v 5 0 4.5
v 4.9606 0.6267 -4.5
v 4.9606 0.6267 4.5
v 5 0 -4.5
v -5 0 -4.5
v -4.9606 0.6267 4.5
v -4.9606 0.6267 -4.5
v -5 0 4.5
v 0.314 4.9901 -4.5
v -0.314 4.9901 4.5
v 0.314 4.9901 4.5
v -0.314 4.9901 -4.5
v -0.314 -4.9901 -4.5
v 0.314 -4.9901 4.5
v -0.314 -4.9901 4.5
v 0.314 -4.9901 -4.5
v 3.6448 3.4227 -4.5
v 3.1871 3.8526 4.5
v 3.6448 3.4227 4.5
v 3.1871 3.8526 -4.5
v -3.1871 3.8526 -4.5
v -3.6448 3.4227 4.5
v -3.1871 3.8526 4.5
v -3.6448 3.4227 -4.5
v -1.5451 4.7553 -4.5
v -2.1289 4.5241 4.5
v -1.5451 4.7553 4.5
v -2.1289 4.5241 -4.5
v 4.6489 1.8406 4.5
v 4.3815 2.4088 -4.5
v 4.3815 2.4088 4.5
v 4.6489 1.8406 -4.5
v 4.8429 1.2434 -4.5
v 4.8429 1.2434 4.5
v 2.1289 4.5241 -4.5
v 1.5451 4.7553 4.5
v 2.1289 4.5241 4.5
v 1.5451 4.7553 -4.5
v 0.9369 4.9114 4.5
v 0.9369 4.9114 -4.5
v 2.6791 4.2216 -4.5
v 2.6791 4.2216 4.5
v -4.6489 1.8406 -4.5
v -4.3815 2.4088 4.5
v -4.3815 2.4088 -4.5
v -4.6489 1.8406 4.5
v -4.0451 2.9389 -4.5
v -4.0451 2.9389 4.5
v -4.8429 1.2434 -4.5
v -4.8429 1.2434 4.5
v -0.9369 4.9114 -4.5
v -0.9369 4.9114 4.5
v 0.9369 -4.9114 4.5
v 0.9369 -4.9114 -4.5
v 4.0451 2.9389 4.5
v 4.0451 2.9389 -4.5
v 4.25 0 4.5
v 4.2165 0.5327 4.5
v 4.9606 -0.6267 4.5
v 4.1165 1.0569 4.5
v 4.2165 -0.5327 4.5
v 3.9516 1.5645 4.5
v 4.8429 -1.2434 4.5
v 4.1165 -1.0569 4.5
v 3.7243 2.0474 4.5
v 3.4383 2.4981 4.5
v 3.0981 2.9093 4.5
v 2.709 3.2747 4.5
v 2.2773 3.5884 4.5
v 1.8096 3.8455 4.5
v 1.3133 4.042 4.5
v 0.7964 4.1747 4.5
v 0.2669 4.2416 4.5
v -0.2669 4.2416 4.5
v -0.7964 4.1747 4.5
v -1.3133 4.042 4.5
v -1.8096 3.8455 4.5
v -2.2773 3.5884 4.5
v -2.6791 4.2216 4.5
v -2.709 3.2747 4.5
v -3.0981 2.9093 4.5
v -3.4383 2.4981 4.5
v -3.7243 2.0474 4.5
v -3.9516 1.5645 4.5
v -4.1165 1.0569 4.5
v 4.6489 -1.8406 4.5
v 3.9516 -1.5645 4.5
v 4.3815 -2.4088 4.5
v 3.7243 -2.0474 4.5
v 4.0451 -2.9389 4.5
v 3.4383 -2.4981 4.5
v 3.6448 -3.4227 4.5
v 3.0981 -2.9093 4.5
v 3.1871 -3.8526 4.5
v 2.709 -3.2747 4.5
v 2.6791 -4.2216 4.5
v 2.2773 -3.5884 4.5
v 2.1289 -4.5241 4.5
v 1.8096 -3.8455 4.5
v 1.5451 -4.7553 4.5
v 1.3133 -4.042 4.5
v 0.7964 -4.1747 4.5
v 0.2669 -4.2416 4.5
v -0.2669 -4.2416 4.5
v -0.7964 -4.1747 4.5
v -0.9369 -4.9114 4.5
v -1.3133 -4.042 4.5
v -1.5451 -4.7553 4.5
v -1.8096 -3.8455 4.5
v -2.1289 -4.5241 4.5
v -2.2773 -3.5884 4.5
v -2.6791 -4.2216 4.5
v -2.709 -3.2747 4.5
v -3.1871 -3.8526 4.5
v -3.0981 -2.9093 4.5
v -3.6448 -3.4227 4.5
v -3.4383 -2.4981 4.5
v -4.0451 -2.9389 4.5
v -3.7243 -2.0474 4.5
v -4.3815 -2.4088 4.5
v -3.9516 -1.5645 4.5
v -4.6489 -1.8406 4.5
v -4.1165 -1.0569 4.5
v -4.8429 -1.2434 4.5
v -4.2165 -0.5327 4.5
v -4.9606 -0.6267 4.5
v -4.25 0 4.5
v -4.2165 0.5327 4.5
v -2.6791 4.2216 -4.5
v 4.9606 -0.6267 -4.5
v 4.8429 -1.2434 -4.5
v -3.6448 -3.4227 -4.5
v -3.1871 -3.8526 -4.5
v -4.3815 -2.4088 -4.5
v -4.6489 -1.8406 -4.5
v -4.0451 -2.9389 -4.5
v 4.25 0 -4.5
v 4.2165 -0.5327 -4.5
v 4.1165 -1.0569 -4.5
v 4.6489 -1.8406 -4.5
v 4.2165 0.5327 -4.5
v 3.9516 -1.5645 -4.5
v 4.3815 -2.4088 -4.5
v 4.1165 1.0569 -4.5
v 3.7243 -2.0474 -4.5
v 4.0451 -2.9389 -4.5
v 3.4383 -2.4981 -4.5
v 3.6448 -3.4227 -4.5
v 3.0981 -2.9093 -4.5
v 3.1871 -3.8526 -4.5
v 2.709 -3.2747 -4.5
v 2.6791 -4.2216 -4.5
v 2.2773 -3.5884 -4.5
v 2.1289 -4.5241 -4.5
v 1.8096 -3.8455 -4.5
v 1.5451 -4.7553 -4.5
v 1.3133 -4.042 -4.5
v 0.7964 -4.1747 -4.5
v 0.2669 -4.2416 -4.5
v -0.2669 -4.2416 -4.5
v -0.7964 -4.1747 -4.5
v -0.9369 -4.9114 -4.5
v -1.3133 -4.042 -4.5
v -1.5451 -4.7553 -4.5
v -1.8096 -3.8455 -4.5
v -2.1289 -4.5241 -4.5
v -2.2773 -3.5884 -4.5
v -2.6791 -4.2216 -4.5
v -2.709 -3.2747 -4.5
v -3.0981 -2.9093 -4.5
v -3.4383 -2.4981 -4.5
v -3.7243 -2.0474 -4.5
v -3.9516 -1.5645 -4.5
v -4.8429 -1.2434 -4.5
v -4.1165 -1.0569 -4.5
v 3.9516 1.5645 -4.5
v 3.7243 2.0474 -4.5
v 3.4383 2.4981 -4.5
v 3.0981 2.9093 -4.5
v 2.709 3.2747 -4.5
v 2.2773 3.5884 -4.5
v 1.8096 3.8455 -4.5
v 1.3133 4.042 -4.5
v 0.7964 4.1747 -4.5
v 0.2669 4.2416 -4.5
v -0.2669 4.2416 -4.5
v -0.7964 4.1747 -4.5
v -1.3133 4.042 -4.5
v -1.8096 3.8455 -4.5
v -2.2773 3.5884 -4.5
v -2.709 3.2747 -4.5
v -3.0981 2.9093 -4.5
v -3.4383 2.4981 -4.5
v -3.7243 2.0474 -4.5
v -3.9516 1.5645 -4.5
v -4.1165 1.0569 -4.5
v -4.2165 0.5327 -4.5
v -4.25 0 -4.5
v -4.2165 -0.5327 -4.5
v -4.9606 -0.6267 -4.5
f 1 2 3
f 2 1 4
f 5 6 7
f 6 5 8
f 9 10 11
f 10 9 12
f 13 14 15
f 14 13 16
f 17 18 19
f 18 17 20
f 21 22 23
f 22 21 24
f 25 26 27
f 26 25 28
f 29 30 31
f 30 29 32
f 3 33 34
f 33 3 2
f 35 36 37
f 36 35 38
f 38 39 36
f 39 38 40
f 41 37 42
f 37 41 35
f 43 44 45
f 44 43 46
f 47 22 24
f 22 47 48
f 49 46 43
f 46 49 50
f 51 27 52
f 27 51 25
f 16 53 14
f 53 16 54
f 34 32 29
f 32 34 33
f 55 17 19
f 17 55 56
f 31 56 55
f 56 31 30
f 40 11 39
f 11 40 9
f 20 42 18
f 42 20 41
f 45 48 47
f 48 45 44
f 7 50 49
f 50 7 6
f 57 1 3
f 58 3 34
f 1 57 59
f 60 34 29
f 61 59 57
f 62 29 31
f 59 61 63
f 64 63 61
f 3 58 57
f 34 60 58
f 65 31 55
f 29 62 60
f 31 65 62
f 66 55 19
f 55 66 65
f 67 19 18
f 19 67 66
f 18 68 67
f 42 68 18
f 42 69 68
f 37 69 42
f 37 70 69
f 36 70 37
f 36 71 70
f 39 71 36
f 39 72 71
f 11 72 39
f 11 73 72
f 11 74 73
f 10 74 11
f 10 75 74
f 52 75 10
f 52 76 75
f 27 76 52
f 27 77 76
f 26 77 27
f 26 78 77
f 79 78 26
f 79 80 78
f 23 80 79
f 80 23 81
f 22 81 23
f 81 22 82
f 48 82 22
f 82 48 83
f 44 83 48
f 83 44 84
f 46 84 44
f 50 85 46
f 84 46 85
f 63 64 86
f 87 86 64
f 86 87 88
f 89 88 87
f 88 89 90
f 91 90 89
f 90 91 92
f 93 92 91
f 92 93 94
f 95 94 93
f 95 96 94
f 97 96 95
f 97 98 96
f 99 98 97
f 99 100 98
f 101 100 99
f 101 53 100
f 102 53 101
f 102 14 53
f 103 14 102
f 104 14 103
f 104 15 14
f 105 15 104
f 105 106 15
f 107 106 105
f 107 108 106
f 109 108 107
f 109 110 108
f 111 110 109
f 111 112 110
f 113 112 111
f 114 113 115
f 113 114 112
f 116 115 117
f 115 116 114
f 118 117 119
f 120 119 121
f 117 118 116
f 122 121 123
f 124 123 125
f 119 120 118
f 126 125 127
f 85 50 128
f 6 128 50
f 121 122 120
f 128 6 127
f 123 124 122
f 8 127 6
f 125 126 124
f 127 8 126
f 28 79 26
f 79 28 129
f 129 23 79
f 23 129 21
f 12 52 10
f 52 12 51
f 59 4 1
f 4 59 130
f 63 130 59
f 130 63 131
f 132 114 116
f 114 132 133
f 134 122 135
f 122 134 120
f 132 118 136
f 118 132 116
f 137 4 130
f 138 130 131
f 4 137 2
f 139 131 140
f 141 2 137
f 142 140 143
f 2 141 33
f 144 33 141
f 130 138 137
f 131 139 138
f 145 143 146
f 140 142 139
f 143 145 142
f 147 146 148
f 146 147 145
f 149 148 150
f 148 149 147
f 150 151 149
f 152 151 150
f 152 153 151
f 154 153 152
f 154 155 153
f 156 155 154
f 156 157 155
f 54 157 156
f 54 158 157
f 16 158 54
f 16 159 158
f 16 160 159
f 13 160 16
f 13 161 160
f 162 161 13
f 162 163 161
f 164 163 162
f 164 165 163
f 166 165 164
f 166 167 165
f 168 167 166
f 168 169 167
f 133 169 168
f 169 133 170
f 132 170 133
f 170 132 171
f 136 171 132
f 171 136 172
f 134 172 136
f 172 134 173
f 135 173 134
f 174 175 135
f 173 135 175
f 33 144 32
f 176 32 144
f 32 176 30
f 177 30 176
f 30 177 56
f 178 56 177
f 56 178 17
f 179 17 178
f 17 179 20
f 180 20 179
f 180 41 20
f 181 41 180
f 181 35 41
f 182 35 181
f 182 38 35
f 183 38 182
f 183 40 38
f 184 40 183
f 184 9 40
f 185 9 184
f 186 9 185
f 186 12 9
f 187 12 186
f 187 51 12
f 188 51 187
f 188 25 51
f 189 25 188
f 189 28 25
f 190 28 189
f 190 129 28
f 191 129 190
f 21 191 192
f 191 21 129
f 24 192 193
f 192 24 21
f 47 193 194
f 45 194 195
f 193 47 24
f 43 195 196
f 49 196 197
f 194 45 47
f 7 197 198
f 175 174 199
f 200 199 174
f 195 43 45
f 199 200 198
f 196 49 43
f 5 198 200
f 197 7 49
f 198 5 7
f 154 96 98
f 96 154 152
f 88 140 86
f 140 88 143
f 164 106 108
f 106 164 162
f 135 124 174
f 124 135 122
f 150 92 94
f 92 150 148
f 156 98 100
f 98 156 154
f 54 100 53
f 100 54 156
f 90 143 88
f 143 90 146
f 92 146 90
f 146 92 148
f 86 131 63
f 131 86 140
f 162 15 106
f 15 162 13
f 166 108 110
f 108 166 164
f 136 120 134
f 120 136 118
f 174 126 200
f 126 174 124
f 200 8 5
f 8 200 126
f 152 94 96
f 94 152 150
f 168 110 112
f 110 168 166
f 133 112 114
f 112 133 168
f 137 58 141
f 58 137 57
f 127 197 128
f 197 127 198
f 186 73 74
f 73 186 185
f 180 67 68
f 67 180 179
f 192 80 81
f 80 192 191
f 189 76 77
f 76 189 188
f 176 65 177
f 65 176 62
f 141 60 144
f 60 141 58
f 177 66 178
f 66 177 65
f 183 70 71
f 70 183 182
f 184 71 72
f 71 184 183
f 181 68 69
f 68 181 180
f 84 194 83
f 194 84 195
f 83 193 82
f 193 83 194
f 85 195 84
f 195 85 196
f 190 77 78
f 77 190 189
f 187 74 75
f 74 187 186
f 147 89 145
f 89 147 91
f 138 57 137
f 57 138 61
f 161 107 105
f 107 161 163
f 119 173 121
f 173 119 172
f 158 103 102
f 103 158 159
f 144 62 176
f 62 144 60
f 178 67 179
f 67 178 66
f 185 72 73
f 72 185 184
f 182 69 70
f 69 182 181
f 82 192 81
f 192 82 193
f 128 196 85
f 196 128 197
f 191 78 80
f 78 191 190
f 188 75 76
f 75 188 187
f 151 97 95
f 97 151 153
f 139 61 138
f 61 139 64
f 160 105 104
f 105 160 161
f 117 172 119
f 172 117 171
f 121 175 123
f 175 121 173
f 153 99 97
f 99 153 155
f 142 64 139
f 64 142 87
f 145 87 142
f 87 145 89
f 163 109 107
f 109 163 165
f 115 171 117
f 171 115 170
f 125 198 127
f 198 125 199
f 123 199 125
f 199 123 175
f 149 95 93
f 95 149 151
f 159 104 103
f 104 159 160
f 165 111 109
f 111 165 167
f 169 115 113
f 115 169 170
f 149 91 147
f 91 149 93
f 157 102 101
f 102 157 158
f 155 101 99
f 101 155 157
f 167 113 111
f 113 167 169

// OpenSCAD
$fn = 50;


difference() {
	union() {
		translate(v = [0, 0, -4.5000000000]) {
			cylinder(h = 9, r = 5.0000000000);
		}
	}
	union() {
		translate(v = [0, 0, -100.0000000000]) {
			cylinder(h = 200, r = 4.2500000000);
		}
	}
}
